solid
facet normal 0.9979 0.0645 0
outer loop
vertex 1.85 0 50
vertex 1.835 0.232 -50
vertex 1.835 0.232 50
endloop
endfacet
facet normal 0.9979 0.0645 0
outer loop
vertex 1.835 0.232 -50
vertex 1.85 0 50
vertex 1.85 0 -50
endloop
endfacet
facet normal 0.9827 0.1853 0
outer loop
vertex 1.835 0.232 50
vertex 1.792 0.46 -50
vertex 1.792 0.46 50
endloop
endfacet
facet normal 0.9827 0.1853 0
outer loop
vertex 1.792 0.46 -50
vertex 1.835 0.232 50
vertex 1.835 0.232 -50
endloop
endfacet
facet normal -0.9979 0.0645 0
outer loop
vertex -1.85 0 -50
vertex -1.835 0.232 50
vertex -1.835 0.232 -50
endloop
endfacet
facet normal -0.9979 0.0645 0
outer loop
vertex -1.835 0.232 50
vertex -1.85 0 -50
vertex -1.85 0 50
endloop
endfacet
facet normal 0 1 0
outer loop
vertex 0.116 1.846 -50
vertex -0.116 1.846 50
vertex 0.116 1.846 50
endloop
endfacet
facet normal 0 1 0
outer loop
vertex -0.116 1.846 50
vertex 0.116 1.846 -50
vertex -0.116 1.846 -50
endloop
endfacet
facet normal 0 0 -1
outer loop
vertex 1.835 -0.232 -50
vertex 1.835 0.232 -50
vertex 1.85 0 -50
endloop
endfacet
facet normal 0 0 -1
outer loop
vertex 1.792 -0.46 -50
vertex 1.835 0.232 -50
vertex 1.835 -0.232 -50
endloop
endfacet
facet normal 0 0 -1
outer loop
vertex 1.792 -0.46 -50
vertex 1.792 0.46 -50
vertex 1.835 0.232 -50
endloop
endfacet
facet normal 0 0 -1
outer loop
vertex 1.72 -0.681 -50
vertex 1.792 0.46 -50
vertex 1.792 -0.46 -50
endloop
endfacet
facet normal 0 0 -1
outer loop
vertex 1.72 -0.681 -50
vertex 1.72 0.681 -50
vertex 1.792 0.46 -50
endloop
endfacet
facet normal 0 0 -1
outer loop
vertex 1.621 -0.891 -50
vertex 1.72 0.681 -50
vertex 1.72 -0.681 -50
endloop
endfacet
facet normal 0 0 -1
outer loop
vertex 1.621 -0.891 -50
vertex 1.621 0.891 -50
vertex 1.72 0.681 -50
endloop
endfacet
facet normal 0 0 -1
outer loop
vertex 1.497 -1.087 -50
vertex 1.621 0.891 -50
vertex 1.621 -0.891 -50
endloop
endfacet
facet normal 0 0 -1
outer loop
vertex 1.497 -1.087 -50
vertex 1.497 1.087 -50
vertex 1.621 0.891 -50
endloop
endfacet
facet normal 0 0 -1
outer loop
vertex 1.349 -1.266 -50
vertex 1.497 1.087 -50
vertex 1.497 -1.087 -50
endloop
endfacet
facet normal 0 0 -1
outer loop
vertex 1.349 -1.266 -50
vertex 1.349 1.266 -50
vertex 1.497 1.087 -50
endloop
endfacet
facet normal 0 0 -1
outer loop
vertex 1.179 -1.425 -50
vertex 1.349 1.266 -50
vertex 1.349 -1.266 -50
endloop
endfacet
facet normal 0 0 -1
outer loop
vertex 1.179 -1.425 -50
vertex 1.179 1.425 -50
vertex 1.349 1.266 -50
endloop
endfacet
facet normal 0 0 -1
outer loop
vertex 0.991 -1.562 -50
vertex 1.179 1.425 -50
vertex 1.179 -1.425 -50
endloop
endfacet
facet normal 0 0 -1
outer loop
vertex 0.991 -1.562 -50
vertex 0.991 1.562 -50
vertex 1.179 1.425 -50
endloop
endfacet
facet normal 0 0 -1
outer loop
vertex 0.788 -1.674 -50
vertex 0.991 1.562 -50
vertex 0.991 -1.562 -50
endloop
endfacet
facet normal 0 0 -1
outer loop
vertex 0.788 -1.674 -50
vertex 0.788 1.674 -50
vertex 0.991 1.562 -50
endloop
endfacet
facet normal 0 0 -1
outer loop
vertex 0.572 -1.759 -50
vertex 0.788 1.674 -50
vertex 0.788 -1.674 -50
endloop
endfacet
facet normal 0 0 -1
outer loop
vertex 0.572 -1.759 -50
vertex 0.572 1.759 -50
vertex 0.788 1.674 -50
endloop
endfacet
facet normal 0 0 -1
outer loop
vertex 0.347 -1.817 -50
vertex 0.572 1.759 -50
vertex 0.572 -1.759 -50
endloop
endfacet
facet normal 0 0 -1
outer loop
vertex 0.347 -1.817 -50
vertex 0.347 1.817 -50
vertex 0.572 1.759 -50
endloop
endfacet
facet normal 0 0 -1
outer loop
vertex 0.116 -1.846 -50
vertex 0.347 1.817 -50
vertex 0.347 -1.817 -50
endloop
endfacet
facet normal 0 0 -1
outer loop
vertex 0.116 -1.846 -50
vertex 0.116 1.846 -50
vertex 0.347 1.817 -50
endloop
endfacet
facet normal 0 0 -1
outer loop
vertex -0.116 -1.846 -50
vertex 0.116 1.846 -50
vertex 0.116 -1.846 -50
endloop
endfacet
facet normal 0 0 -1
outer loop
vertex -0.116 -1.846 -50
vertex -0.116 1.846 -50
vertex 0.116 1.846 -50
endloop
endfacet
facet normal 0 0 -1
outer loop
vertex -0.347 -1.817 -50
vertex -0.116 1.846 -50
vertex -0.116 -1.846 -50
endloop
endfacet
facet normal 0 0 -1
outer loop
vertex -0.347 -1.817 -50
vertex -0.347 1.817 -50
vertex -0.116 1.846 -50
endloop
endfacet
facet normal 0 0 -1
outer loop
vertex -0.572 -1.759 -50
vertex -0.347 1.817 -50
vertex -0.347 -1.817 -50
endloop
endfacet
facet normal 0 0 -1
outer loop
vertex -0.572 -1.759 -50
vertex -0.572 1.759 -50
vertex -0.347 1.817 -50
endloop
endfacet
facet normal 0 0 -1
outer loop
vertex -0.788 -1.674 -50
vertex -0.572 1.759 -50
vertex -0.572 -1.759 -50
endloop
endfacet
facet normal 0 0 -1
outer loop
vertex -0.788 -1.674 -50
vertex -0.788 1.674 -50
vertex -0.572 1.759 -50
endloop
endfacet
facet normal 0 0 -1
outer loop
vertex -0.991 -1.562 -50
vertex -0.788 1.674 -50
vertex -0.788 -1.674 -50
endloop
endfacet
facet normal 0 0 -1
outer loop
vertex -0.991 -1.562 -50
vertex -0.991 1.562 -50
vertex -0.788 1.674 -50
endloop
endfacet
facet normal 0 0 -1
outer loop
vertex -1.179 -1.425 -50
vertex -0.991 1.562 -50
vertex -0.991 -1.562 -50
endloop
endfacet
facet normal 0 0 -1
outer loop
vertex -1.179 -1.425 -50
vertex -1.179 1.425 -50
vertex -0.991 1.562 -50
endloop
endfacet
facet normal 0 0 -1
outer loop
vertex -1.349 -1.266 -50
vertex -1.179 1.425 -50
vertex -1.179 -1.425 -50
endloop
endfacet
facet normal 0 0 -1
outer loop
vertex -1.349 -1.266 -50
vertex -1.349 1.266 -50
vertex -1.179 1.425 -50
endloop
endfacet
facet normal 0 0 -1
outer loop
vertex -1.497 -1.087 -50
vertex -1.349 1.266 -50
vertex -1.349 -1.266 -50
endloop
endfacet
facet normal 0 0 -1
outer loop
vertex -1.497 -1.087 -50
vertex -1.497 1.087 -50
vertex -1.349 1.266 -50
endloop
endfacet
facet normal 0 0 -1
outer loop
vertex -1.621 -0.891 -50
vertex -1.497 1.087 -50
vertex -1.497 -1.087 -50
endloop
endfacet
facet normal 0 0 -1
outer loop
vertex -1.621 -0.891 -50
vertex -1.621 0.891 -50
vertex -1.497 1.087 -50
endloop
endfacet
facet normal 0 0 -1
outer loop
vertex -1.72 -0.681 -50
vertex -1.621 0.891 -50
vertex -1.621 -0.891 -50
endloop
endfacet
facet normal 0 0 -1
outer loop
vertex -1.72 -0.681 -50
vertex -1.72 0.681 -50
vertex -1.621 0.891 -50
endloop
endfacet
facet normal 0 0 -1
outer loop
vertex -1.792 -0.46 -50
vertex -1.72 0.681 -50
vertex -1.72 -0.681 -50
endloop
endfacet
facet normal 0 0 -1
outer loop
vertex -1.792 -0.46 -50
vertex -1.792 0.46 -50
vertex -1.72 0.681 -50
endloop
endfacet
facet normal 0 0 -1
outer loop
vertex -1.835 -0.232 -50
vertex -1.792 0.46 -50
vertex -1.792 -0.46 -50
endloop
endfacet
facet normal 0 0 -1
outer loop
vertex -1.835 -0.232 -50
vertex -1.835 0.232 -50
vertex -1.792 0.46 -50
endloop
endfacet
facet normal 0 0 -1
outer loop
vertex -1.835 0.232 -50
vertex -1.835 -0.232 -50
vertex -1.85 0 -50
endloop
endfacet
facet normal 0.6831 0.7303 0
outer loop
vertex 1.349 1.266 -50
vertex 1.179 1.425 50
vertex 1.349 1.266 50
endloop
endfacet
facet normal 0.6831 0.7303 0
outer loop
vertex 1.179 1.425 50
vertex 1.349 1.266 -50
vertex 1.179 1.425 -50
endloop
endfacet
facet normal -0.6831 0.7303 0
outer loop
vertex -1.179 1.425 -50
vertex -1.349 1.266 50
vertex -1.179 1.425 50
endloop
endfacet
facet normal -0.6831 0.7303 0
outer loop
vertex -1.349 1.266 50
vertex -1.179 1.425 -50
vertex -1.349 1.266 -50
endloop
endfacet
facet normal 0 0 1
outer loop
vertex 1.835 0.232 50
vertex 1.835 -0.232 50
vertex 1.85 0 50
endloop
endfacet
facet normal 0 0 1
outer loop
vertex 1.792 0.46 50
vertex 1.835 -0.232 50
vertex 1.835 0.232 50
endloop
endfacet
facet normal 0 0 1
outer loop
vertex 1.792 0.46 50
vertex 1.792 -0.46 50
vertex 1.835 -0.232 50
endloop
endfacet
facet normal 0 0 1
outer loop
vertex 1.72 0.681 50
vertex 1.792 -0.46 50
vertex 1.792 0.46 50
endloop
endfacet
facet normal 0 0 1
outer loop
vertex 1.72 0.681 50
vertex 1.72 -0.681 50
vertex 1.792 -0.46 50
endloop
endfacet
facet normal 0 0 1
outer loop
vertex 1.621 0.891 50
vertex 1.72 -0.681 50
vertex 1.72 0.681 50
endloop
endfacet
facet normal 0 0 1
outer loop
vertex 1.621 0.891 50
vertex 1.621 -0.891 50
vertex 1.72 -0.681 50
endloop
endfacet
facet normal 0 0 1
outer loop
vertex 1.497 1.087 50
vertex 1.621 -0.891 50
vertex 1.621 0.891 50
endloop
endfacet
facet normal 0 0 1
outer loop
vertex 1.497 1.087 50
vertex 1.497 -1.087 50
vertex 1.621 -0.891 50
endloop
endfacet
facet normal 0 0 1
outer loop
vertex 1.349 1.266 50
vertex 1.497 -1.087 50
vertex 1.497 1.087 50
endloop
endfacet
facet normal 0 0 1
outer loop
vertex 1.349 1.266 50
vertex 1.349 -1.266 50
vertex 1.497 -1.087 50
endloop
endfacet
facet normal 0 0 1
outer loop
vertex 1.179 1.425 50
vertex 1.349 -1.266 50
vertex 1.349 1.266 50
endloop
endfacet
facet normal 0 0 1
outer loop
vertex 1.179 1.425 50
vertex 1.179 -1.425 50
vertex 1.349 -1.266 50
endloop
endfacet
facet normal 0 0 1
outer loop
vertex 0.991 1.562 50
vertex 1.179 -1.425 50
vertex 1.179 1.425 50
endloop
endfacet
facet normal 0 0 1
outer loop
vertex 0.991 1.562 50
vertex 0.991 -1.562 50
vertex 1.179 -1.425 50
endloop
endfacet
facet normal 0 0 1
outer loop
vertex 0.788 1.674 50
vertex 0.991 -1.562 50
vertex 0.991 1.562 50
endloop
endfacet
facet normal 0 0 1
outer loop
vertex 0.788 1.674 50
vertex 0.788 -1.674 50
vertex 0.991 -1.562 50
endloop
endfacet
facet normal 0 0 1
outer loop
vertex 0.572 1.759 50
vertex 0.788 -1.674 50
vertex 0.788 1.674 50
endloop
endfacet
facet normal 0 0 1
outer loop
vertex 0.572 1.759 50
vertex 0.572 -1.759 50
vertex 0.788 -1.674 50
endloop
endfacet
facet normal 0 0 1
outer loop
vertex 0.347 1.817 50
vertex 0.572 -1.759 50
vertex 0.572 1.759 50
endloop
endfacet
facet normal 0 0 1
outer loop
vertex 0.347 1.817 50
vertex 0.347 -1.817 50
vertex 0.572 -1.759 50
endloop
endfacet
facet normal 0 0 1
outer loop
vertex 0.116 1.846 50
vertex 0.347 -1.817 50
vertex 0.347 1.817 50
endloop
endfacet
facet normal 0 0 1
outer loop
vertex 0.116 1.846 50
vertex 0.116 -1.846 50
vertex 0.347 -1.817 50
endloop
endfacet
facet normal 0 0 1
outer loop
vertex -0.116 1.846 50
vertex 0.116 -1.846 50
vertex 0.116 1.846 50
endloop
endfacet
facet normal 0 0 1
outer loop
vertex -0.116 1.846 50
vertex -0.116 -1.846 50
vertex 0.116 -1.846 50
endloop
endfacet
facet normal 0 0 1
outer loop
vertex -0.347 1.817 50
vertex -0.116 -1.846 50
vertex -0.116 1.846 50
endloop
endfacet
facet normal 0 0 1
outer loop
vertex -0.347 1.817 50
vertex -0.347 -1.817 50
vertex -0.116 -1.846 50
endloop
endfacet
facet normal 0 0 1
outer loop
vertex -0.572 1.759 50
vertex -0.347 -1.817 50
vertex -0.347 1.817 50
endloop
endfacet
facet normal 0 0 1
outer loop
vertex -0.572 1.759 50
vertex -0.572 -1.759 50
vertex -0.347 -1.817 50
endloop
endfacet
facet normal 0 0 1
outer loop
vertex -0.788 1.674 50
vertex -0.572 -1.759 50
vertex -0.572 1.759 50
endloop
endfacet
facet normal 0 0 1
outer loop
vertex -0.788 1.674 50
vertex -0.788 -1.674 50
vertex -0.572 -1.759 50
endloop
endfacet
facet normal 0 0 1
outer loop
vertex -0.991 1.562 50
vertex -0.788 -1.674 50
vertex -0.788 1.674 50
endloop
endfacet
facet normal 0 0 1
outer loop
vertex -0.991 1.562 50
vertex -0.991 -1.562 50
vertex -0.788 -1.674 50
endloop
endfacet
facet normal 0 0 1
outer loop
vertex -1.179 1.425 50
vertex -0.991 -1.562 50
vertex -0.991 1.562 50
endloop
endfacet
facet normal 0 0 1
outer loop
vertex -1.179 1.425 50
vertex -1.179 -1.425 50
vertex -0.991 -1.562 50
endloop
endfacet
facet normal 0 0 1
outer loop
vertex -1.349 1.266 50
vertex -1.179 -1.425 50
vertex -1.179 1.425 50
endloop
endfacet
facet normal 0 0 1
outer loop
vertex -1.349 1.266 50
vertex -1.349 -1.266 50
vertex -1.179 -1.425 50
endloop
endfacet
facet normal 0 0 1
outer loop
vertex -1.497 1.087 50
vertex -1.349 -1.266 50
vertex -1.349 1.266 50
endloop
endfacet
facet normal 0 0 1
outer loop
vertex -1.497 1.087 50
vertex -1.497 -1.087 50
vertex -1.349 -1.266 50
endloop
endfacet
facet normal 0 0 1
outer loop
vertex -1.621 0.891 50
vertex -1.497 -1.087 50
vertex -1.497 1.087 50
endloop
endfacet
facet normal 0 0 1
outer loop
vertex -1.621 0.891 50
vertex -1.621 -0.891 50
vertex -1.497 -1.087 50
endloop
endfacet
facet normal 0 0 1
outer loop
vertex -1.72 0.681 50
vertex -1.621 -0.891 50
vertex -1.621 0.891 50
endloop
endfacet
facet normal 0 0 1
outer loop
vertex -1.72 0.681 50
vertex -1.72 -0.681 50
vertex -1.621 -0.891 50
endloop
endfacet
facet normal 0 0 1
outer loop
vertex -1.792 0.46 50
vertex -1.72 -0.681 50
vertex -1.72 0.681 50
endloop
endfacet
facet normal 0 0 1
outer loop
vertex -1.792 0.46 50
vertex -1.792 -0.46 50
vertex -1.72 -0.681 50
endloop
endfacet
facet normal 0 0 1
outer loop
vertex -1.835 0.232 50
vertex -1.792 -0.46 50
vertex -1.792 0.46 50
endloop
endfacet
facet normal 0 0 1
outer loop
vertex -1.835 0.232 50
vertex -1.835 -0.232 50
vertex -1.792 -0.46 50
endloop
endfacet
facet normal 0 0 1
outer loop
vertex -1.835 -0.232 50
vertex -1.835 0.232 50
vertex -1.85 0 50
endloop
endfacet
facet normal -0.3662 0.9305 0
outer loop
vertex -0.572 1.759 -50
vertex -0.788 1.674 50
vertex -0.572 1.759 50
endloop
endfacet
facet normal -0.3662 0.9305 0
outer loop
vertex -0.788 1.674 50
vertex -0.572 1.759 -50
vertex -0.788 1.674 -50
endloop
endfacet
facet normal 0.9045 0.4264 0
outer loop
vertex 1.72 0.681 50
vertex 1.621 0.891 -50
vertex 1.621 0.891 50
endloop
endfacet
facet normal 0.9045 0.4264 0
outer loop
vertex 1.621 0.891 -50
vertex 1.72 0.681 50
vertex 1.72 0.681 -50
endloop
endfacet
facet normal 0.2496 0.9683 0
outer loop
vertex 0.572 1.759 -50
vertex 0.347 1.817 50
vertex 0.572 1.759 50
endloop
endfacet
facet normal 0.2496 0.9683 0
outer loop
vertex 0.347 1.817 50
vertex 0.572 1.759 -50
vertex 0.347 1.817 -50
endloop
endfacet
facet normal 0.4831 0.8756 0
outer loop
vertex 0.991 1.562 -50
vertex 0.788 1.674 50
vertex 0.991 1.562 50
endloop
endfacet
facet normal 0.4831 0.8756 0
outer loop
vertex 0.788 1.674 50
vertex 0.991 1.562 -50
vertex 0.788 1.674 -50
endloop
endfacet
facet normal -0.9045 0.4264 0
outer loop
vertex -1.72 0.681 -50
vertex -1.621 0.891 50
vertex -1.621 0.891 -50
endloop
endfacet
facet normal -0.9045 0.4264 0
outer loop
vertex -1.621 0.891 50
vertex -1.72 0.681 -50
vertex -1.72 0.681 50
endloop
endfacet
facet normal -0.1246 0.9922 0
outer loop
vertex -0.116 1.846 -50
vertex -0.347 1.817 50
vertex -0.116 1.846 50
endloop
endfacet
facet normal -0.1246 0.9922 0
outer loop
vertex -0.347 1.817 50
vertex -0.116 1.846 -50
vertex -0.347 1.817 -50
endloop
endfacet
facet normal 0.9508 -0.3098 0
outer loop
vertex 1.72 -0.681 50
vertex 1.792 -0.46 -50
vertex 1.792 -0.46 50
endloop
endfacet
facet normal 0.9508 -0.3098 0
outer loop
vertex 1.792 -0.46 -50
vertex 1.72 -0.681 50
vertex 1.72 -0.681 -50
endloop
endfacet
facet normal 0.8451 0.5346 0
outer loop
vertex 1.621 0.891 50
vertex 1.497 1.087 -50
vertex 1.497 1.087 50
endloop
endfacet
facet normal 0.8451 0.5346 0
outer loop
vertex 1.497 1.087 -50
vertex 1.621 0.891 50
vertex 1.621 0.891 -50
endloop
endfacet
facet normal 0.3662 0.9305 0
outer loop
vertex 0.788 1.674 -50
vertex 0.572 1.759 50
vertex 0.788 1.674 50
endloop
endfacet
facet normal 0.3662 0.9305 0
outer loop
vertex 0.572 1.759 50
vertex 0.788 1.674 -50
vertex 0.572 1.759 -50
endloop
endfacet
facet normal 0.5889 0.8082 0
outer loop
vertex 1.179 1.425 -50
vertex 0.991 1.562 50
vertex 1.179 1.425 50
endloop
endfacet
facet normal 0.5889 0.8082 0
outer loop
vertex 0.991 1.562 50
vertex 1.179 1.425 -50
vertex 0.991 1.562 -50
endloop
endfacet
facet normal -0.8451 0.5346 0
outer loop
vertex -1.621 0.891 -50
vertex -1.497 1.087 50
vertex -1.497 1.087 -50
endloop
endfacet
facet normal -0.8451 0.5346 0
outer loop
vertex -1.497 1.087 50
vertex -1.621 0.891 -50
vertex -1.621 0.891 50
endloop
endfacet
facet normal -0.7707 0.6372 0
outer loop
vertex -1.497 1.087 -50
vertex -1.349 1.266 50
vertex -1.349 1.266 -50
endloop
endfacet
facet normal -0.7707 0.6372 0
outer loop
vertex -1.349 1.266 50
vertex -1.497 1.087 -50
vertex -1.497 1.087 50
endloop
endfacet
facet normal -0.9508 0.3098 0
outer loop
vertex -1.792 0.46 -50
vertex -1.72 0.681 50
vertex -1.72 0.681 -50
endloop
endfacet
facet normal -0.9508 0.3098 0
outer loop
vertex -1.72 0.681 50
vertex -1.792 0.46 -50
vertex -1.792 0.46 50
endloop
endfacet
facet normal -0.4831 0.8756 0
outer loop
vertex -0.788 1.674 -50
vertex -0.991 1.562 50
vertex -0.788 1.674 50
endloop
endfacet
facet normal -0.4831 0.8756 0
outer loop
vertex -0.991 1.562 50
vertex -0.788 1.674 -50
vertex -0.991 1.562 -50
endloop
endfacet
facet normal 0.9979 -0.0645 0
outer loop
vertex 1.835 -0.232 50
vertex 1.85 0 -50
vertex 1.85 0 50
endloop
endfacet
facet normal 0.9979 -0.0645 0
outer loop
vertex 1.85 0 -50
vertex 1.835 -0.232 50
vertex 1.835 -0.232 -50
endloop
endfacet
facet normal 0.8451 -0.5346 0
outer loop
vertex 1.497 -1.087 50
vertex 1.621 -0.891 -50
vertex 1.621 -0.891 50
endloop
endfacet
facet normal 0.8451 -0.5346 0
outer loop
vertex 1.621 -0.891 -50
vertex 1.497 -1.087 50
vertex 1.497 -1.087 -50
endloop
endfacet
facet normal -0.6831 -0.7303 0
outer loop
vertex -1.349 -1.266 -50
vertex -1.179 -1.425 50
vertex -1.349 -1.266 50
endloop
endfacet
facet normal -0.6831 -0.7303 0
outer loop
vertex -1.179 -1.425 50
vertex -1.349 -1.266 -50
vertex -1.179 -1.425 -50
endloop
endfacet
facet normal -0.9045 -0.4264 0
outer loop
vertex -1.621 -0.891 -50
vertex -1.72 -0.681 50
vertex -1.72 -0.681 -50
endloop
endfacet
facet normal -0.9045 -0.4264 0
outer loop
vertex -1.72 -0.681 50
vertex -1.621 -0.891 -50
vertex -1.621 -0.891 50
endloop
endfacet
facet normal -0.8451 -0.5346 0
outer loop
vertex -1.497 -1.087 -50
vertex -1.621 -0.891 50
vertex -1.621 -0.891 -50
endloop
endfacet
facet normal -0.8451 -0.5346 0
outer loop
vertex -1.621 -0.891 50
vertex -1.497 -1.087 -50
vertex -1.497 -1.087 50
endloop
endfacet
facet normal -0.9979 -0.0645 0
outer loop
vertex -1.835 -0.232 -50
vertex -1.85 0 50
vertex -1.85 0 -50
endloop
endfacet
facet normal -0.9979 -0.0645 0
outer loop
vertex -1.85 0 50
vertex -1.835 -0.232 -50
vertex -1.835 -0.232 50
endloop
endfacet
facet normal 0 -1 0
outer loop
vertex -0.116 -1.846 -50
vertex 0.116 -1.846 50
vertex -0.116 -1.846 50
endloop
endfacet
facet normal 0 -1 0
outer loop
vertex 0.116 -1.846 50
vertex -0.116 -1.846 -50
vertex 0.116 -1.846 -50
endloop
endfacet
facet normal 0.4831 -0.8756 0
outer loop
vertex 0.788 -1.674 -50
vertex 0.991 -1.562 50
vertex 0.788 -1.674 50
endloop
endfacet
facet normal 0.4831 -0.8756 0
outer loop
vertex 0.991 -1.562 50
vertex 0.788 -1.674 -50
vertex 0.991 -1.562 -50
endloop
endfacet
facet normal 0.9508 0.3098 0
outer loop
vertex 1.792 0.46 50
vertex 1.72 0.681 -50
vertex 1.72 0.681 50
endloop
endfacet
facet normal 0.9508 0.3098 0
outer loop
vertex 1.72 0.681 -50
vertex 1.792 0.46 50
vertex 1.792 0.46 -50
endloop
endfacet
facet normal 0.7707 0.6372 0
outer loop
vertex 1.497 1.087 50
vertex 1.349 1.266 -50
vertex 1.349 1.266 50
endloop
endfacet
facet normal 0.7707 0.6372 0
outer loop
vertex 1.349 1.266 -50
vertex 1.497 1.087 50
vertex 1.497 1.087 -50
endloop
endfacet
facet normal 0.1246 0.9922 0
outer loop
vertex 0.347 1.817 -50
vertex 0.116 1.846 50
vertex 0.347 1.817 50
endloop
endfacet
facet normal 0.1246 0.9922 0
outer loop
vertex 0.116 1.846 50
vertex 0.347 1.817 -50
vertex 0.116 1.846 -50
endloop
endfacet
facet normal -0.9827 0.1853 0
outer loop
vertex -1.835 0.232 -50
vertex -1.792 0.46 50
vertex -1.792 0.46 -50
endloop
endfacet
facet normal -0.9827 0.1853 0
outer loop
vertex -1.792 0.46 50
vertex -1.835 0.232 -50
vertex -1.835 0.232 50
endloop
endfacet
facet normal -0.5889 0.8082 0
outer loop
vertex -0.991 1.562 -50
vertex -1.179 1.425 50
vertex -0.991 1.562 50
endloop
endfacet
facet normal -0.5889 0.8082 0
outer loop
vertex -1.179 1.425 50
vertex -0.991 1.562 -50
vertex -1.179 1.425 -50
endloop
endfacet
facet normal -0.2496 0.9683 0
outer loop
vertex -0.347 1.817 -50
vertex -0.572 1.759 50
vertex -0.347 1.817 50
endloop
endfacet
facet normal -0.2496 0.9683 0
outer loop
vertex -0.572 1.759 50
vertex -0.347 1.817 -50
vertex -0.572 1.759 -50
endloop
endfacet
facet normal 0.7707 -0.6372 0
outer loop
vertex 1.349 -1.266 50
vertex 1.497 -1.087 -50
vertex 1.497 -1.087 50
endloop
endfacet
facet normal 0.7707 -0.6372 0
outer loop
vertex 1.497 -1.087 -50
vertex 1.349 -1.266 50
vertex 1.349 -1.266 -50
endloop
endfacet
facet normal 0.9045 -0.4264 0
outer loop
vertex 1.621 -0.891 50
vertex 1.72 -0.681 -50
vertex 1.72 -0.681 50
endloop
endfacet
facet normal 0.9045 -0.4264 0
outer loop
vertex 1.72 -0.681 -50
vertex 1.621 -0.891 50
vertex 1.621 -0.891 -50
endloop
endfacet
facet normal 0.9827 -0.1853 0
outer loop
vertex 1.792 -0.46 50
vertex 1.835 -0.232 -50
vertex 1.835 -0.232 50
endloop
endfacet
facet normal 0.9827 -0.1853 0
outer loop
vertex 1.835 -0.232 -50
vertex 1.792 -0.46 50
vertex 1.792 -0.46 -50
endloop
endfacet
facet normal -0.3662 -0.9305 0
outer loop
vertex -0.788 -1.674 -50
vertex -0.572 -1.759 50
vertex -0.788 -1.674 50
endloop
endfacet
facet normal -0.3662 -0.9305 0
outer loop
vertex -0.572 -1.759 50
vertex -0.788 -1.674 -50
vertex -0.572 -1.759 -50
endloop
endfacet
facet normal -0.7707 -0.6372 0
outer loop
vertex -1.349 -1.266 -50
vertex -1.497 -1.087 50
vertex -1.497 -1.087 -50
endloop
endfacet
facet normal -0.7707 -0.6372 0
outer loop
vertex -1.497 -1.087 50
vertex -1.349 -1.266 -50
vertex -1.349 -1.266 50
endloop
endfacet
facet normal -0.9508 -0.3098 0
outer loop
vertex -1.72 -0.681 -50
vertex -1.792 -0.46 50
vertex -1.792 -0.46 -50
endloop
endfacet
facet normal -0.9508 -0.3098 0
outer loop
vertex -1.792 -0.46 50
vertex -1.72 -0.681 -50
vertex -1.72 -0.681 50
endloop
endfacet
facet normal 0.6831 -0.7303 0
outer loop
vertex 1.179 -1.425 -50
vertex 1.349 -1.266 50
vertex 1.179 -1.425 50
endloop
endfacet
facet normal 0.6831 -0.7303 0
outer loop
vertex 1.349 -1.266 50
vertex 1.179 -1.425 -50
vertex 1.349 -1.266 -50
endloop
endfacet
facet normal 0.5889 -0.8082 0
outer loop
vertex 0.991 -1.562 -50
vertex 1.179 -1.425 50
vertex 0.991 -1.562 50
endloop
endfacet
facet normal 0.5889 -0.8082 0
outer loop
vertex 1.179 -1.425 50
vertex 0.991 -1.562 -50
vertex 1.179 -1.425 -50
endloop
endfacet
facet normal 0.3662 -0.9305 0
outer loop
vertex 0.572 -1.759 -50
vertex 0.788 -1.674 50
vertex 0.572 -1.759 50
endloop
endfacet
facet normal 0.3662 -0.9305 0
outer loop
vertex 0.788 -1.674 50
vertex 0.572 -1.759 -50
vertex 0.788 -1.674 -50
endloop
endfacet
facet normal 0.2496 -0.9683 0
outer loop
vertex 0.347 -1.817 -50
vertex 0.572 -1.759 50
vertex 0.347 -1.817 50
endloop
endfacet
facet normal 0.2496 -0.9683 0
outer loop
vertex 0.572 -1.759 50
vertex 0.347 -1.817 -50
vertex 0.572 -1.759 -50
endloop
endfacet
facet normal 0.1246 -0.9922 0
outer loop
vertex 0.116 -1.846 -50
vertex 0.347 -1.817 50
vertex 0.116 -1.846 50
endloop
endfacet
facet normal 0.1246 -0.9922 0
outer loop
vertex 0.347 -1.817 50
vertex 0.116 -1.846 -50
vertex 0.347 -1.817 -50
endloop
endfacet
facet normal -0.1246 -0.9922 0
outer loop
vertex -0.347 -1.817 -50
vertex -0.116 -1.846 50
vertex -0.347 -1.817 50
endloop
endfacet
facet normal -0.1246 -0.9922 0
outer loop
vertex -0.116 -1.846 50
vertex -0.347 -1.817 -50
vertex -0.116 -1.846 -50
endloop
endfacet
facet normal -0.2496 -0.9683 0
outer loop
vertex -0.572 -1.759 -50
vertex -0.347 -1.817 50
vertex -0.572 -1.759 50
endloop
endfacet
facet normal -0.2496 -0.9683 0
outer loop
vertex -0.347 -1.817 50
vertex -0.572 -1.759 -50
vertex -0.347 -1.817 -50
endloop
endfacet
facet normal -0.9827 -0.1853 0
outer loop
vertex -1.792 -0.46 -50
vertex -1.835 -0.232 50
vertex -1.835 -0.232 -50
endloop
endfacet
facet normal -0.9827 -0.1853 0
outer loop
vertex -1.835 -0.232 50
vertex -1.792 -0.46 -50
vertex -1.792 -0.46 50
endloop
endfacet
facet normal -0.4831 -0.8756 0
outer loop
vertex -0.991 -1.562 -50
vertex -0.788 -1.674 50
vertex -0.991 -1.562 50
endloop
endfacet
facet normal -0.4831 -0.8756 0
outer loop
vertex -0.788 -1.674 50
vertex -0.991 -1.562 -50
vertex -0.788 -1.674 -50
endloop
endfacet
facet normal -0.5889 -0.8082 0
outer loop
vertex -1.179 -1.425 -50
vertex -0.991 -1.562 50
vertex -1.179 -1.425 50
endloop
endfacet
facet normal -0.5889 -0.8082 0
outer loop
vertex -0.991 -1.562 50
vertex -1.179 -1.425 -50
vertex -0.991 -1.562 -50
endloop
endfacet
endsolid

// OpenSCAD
$fn = 50;


difference() {
	union() {
		translate(v = [0, 0, -50.0000000000]) {
			cylinder(h = 100, r = 1.8500000000);
		}
	}
	union() {
		translate(v = [0, 0, -100.0000000000]) {
			cylinder(h = 200, r = 0);
		}
	}
}
